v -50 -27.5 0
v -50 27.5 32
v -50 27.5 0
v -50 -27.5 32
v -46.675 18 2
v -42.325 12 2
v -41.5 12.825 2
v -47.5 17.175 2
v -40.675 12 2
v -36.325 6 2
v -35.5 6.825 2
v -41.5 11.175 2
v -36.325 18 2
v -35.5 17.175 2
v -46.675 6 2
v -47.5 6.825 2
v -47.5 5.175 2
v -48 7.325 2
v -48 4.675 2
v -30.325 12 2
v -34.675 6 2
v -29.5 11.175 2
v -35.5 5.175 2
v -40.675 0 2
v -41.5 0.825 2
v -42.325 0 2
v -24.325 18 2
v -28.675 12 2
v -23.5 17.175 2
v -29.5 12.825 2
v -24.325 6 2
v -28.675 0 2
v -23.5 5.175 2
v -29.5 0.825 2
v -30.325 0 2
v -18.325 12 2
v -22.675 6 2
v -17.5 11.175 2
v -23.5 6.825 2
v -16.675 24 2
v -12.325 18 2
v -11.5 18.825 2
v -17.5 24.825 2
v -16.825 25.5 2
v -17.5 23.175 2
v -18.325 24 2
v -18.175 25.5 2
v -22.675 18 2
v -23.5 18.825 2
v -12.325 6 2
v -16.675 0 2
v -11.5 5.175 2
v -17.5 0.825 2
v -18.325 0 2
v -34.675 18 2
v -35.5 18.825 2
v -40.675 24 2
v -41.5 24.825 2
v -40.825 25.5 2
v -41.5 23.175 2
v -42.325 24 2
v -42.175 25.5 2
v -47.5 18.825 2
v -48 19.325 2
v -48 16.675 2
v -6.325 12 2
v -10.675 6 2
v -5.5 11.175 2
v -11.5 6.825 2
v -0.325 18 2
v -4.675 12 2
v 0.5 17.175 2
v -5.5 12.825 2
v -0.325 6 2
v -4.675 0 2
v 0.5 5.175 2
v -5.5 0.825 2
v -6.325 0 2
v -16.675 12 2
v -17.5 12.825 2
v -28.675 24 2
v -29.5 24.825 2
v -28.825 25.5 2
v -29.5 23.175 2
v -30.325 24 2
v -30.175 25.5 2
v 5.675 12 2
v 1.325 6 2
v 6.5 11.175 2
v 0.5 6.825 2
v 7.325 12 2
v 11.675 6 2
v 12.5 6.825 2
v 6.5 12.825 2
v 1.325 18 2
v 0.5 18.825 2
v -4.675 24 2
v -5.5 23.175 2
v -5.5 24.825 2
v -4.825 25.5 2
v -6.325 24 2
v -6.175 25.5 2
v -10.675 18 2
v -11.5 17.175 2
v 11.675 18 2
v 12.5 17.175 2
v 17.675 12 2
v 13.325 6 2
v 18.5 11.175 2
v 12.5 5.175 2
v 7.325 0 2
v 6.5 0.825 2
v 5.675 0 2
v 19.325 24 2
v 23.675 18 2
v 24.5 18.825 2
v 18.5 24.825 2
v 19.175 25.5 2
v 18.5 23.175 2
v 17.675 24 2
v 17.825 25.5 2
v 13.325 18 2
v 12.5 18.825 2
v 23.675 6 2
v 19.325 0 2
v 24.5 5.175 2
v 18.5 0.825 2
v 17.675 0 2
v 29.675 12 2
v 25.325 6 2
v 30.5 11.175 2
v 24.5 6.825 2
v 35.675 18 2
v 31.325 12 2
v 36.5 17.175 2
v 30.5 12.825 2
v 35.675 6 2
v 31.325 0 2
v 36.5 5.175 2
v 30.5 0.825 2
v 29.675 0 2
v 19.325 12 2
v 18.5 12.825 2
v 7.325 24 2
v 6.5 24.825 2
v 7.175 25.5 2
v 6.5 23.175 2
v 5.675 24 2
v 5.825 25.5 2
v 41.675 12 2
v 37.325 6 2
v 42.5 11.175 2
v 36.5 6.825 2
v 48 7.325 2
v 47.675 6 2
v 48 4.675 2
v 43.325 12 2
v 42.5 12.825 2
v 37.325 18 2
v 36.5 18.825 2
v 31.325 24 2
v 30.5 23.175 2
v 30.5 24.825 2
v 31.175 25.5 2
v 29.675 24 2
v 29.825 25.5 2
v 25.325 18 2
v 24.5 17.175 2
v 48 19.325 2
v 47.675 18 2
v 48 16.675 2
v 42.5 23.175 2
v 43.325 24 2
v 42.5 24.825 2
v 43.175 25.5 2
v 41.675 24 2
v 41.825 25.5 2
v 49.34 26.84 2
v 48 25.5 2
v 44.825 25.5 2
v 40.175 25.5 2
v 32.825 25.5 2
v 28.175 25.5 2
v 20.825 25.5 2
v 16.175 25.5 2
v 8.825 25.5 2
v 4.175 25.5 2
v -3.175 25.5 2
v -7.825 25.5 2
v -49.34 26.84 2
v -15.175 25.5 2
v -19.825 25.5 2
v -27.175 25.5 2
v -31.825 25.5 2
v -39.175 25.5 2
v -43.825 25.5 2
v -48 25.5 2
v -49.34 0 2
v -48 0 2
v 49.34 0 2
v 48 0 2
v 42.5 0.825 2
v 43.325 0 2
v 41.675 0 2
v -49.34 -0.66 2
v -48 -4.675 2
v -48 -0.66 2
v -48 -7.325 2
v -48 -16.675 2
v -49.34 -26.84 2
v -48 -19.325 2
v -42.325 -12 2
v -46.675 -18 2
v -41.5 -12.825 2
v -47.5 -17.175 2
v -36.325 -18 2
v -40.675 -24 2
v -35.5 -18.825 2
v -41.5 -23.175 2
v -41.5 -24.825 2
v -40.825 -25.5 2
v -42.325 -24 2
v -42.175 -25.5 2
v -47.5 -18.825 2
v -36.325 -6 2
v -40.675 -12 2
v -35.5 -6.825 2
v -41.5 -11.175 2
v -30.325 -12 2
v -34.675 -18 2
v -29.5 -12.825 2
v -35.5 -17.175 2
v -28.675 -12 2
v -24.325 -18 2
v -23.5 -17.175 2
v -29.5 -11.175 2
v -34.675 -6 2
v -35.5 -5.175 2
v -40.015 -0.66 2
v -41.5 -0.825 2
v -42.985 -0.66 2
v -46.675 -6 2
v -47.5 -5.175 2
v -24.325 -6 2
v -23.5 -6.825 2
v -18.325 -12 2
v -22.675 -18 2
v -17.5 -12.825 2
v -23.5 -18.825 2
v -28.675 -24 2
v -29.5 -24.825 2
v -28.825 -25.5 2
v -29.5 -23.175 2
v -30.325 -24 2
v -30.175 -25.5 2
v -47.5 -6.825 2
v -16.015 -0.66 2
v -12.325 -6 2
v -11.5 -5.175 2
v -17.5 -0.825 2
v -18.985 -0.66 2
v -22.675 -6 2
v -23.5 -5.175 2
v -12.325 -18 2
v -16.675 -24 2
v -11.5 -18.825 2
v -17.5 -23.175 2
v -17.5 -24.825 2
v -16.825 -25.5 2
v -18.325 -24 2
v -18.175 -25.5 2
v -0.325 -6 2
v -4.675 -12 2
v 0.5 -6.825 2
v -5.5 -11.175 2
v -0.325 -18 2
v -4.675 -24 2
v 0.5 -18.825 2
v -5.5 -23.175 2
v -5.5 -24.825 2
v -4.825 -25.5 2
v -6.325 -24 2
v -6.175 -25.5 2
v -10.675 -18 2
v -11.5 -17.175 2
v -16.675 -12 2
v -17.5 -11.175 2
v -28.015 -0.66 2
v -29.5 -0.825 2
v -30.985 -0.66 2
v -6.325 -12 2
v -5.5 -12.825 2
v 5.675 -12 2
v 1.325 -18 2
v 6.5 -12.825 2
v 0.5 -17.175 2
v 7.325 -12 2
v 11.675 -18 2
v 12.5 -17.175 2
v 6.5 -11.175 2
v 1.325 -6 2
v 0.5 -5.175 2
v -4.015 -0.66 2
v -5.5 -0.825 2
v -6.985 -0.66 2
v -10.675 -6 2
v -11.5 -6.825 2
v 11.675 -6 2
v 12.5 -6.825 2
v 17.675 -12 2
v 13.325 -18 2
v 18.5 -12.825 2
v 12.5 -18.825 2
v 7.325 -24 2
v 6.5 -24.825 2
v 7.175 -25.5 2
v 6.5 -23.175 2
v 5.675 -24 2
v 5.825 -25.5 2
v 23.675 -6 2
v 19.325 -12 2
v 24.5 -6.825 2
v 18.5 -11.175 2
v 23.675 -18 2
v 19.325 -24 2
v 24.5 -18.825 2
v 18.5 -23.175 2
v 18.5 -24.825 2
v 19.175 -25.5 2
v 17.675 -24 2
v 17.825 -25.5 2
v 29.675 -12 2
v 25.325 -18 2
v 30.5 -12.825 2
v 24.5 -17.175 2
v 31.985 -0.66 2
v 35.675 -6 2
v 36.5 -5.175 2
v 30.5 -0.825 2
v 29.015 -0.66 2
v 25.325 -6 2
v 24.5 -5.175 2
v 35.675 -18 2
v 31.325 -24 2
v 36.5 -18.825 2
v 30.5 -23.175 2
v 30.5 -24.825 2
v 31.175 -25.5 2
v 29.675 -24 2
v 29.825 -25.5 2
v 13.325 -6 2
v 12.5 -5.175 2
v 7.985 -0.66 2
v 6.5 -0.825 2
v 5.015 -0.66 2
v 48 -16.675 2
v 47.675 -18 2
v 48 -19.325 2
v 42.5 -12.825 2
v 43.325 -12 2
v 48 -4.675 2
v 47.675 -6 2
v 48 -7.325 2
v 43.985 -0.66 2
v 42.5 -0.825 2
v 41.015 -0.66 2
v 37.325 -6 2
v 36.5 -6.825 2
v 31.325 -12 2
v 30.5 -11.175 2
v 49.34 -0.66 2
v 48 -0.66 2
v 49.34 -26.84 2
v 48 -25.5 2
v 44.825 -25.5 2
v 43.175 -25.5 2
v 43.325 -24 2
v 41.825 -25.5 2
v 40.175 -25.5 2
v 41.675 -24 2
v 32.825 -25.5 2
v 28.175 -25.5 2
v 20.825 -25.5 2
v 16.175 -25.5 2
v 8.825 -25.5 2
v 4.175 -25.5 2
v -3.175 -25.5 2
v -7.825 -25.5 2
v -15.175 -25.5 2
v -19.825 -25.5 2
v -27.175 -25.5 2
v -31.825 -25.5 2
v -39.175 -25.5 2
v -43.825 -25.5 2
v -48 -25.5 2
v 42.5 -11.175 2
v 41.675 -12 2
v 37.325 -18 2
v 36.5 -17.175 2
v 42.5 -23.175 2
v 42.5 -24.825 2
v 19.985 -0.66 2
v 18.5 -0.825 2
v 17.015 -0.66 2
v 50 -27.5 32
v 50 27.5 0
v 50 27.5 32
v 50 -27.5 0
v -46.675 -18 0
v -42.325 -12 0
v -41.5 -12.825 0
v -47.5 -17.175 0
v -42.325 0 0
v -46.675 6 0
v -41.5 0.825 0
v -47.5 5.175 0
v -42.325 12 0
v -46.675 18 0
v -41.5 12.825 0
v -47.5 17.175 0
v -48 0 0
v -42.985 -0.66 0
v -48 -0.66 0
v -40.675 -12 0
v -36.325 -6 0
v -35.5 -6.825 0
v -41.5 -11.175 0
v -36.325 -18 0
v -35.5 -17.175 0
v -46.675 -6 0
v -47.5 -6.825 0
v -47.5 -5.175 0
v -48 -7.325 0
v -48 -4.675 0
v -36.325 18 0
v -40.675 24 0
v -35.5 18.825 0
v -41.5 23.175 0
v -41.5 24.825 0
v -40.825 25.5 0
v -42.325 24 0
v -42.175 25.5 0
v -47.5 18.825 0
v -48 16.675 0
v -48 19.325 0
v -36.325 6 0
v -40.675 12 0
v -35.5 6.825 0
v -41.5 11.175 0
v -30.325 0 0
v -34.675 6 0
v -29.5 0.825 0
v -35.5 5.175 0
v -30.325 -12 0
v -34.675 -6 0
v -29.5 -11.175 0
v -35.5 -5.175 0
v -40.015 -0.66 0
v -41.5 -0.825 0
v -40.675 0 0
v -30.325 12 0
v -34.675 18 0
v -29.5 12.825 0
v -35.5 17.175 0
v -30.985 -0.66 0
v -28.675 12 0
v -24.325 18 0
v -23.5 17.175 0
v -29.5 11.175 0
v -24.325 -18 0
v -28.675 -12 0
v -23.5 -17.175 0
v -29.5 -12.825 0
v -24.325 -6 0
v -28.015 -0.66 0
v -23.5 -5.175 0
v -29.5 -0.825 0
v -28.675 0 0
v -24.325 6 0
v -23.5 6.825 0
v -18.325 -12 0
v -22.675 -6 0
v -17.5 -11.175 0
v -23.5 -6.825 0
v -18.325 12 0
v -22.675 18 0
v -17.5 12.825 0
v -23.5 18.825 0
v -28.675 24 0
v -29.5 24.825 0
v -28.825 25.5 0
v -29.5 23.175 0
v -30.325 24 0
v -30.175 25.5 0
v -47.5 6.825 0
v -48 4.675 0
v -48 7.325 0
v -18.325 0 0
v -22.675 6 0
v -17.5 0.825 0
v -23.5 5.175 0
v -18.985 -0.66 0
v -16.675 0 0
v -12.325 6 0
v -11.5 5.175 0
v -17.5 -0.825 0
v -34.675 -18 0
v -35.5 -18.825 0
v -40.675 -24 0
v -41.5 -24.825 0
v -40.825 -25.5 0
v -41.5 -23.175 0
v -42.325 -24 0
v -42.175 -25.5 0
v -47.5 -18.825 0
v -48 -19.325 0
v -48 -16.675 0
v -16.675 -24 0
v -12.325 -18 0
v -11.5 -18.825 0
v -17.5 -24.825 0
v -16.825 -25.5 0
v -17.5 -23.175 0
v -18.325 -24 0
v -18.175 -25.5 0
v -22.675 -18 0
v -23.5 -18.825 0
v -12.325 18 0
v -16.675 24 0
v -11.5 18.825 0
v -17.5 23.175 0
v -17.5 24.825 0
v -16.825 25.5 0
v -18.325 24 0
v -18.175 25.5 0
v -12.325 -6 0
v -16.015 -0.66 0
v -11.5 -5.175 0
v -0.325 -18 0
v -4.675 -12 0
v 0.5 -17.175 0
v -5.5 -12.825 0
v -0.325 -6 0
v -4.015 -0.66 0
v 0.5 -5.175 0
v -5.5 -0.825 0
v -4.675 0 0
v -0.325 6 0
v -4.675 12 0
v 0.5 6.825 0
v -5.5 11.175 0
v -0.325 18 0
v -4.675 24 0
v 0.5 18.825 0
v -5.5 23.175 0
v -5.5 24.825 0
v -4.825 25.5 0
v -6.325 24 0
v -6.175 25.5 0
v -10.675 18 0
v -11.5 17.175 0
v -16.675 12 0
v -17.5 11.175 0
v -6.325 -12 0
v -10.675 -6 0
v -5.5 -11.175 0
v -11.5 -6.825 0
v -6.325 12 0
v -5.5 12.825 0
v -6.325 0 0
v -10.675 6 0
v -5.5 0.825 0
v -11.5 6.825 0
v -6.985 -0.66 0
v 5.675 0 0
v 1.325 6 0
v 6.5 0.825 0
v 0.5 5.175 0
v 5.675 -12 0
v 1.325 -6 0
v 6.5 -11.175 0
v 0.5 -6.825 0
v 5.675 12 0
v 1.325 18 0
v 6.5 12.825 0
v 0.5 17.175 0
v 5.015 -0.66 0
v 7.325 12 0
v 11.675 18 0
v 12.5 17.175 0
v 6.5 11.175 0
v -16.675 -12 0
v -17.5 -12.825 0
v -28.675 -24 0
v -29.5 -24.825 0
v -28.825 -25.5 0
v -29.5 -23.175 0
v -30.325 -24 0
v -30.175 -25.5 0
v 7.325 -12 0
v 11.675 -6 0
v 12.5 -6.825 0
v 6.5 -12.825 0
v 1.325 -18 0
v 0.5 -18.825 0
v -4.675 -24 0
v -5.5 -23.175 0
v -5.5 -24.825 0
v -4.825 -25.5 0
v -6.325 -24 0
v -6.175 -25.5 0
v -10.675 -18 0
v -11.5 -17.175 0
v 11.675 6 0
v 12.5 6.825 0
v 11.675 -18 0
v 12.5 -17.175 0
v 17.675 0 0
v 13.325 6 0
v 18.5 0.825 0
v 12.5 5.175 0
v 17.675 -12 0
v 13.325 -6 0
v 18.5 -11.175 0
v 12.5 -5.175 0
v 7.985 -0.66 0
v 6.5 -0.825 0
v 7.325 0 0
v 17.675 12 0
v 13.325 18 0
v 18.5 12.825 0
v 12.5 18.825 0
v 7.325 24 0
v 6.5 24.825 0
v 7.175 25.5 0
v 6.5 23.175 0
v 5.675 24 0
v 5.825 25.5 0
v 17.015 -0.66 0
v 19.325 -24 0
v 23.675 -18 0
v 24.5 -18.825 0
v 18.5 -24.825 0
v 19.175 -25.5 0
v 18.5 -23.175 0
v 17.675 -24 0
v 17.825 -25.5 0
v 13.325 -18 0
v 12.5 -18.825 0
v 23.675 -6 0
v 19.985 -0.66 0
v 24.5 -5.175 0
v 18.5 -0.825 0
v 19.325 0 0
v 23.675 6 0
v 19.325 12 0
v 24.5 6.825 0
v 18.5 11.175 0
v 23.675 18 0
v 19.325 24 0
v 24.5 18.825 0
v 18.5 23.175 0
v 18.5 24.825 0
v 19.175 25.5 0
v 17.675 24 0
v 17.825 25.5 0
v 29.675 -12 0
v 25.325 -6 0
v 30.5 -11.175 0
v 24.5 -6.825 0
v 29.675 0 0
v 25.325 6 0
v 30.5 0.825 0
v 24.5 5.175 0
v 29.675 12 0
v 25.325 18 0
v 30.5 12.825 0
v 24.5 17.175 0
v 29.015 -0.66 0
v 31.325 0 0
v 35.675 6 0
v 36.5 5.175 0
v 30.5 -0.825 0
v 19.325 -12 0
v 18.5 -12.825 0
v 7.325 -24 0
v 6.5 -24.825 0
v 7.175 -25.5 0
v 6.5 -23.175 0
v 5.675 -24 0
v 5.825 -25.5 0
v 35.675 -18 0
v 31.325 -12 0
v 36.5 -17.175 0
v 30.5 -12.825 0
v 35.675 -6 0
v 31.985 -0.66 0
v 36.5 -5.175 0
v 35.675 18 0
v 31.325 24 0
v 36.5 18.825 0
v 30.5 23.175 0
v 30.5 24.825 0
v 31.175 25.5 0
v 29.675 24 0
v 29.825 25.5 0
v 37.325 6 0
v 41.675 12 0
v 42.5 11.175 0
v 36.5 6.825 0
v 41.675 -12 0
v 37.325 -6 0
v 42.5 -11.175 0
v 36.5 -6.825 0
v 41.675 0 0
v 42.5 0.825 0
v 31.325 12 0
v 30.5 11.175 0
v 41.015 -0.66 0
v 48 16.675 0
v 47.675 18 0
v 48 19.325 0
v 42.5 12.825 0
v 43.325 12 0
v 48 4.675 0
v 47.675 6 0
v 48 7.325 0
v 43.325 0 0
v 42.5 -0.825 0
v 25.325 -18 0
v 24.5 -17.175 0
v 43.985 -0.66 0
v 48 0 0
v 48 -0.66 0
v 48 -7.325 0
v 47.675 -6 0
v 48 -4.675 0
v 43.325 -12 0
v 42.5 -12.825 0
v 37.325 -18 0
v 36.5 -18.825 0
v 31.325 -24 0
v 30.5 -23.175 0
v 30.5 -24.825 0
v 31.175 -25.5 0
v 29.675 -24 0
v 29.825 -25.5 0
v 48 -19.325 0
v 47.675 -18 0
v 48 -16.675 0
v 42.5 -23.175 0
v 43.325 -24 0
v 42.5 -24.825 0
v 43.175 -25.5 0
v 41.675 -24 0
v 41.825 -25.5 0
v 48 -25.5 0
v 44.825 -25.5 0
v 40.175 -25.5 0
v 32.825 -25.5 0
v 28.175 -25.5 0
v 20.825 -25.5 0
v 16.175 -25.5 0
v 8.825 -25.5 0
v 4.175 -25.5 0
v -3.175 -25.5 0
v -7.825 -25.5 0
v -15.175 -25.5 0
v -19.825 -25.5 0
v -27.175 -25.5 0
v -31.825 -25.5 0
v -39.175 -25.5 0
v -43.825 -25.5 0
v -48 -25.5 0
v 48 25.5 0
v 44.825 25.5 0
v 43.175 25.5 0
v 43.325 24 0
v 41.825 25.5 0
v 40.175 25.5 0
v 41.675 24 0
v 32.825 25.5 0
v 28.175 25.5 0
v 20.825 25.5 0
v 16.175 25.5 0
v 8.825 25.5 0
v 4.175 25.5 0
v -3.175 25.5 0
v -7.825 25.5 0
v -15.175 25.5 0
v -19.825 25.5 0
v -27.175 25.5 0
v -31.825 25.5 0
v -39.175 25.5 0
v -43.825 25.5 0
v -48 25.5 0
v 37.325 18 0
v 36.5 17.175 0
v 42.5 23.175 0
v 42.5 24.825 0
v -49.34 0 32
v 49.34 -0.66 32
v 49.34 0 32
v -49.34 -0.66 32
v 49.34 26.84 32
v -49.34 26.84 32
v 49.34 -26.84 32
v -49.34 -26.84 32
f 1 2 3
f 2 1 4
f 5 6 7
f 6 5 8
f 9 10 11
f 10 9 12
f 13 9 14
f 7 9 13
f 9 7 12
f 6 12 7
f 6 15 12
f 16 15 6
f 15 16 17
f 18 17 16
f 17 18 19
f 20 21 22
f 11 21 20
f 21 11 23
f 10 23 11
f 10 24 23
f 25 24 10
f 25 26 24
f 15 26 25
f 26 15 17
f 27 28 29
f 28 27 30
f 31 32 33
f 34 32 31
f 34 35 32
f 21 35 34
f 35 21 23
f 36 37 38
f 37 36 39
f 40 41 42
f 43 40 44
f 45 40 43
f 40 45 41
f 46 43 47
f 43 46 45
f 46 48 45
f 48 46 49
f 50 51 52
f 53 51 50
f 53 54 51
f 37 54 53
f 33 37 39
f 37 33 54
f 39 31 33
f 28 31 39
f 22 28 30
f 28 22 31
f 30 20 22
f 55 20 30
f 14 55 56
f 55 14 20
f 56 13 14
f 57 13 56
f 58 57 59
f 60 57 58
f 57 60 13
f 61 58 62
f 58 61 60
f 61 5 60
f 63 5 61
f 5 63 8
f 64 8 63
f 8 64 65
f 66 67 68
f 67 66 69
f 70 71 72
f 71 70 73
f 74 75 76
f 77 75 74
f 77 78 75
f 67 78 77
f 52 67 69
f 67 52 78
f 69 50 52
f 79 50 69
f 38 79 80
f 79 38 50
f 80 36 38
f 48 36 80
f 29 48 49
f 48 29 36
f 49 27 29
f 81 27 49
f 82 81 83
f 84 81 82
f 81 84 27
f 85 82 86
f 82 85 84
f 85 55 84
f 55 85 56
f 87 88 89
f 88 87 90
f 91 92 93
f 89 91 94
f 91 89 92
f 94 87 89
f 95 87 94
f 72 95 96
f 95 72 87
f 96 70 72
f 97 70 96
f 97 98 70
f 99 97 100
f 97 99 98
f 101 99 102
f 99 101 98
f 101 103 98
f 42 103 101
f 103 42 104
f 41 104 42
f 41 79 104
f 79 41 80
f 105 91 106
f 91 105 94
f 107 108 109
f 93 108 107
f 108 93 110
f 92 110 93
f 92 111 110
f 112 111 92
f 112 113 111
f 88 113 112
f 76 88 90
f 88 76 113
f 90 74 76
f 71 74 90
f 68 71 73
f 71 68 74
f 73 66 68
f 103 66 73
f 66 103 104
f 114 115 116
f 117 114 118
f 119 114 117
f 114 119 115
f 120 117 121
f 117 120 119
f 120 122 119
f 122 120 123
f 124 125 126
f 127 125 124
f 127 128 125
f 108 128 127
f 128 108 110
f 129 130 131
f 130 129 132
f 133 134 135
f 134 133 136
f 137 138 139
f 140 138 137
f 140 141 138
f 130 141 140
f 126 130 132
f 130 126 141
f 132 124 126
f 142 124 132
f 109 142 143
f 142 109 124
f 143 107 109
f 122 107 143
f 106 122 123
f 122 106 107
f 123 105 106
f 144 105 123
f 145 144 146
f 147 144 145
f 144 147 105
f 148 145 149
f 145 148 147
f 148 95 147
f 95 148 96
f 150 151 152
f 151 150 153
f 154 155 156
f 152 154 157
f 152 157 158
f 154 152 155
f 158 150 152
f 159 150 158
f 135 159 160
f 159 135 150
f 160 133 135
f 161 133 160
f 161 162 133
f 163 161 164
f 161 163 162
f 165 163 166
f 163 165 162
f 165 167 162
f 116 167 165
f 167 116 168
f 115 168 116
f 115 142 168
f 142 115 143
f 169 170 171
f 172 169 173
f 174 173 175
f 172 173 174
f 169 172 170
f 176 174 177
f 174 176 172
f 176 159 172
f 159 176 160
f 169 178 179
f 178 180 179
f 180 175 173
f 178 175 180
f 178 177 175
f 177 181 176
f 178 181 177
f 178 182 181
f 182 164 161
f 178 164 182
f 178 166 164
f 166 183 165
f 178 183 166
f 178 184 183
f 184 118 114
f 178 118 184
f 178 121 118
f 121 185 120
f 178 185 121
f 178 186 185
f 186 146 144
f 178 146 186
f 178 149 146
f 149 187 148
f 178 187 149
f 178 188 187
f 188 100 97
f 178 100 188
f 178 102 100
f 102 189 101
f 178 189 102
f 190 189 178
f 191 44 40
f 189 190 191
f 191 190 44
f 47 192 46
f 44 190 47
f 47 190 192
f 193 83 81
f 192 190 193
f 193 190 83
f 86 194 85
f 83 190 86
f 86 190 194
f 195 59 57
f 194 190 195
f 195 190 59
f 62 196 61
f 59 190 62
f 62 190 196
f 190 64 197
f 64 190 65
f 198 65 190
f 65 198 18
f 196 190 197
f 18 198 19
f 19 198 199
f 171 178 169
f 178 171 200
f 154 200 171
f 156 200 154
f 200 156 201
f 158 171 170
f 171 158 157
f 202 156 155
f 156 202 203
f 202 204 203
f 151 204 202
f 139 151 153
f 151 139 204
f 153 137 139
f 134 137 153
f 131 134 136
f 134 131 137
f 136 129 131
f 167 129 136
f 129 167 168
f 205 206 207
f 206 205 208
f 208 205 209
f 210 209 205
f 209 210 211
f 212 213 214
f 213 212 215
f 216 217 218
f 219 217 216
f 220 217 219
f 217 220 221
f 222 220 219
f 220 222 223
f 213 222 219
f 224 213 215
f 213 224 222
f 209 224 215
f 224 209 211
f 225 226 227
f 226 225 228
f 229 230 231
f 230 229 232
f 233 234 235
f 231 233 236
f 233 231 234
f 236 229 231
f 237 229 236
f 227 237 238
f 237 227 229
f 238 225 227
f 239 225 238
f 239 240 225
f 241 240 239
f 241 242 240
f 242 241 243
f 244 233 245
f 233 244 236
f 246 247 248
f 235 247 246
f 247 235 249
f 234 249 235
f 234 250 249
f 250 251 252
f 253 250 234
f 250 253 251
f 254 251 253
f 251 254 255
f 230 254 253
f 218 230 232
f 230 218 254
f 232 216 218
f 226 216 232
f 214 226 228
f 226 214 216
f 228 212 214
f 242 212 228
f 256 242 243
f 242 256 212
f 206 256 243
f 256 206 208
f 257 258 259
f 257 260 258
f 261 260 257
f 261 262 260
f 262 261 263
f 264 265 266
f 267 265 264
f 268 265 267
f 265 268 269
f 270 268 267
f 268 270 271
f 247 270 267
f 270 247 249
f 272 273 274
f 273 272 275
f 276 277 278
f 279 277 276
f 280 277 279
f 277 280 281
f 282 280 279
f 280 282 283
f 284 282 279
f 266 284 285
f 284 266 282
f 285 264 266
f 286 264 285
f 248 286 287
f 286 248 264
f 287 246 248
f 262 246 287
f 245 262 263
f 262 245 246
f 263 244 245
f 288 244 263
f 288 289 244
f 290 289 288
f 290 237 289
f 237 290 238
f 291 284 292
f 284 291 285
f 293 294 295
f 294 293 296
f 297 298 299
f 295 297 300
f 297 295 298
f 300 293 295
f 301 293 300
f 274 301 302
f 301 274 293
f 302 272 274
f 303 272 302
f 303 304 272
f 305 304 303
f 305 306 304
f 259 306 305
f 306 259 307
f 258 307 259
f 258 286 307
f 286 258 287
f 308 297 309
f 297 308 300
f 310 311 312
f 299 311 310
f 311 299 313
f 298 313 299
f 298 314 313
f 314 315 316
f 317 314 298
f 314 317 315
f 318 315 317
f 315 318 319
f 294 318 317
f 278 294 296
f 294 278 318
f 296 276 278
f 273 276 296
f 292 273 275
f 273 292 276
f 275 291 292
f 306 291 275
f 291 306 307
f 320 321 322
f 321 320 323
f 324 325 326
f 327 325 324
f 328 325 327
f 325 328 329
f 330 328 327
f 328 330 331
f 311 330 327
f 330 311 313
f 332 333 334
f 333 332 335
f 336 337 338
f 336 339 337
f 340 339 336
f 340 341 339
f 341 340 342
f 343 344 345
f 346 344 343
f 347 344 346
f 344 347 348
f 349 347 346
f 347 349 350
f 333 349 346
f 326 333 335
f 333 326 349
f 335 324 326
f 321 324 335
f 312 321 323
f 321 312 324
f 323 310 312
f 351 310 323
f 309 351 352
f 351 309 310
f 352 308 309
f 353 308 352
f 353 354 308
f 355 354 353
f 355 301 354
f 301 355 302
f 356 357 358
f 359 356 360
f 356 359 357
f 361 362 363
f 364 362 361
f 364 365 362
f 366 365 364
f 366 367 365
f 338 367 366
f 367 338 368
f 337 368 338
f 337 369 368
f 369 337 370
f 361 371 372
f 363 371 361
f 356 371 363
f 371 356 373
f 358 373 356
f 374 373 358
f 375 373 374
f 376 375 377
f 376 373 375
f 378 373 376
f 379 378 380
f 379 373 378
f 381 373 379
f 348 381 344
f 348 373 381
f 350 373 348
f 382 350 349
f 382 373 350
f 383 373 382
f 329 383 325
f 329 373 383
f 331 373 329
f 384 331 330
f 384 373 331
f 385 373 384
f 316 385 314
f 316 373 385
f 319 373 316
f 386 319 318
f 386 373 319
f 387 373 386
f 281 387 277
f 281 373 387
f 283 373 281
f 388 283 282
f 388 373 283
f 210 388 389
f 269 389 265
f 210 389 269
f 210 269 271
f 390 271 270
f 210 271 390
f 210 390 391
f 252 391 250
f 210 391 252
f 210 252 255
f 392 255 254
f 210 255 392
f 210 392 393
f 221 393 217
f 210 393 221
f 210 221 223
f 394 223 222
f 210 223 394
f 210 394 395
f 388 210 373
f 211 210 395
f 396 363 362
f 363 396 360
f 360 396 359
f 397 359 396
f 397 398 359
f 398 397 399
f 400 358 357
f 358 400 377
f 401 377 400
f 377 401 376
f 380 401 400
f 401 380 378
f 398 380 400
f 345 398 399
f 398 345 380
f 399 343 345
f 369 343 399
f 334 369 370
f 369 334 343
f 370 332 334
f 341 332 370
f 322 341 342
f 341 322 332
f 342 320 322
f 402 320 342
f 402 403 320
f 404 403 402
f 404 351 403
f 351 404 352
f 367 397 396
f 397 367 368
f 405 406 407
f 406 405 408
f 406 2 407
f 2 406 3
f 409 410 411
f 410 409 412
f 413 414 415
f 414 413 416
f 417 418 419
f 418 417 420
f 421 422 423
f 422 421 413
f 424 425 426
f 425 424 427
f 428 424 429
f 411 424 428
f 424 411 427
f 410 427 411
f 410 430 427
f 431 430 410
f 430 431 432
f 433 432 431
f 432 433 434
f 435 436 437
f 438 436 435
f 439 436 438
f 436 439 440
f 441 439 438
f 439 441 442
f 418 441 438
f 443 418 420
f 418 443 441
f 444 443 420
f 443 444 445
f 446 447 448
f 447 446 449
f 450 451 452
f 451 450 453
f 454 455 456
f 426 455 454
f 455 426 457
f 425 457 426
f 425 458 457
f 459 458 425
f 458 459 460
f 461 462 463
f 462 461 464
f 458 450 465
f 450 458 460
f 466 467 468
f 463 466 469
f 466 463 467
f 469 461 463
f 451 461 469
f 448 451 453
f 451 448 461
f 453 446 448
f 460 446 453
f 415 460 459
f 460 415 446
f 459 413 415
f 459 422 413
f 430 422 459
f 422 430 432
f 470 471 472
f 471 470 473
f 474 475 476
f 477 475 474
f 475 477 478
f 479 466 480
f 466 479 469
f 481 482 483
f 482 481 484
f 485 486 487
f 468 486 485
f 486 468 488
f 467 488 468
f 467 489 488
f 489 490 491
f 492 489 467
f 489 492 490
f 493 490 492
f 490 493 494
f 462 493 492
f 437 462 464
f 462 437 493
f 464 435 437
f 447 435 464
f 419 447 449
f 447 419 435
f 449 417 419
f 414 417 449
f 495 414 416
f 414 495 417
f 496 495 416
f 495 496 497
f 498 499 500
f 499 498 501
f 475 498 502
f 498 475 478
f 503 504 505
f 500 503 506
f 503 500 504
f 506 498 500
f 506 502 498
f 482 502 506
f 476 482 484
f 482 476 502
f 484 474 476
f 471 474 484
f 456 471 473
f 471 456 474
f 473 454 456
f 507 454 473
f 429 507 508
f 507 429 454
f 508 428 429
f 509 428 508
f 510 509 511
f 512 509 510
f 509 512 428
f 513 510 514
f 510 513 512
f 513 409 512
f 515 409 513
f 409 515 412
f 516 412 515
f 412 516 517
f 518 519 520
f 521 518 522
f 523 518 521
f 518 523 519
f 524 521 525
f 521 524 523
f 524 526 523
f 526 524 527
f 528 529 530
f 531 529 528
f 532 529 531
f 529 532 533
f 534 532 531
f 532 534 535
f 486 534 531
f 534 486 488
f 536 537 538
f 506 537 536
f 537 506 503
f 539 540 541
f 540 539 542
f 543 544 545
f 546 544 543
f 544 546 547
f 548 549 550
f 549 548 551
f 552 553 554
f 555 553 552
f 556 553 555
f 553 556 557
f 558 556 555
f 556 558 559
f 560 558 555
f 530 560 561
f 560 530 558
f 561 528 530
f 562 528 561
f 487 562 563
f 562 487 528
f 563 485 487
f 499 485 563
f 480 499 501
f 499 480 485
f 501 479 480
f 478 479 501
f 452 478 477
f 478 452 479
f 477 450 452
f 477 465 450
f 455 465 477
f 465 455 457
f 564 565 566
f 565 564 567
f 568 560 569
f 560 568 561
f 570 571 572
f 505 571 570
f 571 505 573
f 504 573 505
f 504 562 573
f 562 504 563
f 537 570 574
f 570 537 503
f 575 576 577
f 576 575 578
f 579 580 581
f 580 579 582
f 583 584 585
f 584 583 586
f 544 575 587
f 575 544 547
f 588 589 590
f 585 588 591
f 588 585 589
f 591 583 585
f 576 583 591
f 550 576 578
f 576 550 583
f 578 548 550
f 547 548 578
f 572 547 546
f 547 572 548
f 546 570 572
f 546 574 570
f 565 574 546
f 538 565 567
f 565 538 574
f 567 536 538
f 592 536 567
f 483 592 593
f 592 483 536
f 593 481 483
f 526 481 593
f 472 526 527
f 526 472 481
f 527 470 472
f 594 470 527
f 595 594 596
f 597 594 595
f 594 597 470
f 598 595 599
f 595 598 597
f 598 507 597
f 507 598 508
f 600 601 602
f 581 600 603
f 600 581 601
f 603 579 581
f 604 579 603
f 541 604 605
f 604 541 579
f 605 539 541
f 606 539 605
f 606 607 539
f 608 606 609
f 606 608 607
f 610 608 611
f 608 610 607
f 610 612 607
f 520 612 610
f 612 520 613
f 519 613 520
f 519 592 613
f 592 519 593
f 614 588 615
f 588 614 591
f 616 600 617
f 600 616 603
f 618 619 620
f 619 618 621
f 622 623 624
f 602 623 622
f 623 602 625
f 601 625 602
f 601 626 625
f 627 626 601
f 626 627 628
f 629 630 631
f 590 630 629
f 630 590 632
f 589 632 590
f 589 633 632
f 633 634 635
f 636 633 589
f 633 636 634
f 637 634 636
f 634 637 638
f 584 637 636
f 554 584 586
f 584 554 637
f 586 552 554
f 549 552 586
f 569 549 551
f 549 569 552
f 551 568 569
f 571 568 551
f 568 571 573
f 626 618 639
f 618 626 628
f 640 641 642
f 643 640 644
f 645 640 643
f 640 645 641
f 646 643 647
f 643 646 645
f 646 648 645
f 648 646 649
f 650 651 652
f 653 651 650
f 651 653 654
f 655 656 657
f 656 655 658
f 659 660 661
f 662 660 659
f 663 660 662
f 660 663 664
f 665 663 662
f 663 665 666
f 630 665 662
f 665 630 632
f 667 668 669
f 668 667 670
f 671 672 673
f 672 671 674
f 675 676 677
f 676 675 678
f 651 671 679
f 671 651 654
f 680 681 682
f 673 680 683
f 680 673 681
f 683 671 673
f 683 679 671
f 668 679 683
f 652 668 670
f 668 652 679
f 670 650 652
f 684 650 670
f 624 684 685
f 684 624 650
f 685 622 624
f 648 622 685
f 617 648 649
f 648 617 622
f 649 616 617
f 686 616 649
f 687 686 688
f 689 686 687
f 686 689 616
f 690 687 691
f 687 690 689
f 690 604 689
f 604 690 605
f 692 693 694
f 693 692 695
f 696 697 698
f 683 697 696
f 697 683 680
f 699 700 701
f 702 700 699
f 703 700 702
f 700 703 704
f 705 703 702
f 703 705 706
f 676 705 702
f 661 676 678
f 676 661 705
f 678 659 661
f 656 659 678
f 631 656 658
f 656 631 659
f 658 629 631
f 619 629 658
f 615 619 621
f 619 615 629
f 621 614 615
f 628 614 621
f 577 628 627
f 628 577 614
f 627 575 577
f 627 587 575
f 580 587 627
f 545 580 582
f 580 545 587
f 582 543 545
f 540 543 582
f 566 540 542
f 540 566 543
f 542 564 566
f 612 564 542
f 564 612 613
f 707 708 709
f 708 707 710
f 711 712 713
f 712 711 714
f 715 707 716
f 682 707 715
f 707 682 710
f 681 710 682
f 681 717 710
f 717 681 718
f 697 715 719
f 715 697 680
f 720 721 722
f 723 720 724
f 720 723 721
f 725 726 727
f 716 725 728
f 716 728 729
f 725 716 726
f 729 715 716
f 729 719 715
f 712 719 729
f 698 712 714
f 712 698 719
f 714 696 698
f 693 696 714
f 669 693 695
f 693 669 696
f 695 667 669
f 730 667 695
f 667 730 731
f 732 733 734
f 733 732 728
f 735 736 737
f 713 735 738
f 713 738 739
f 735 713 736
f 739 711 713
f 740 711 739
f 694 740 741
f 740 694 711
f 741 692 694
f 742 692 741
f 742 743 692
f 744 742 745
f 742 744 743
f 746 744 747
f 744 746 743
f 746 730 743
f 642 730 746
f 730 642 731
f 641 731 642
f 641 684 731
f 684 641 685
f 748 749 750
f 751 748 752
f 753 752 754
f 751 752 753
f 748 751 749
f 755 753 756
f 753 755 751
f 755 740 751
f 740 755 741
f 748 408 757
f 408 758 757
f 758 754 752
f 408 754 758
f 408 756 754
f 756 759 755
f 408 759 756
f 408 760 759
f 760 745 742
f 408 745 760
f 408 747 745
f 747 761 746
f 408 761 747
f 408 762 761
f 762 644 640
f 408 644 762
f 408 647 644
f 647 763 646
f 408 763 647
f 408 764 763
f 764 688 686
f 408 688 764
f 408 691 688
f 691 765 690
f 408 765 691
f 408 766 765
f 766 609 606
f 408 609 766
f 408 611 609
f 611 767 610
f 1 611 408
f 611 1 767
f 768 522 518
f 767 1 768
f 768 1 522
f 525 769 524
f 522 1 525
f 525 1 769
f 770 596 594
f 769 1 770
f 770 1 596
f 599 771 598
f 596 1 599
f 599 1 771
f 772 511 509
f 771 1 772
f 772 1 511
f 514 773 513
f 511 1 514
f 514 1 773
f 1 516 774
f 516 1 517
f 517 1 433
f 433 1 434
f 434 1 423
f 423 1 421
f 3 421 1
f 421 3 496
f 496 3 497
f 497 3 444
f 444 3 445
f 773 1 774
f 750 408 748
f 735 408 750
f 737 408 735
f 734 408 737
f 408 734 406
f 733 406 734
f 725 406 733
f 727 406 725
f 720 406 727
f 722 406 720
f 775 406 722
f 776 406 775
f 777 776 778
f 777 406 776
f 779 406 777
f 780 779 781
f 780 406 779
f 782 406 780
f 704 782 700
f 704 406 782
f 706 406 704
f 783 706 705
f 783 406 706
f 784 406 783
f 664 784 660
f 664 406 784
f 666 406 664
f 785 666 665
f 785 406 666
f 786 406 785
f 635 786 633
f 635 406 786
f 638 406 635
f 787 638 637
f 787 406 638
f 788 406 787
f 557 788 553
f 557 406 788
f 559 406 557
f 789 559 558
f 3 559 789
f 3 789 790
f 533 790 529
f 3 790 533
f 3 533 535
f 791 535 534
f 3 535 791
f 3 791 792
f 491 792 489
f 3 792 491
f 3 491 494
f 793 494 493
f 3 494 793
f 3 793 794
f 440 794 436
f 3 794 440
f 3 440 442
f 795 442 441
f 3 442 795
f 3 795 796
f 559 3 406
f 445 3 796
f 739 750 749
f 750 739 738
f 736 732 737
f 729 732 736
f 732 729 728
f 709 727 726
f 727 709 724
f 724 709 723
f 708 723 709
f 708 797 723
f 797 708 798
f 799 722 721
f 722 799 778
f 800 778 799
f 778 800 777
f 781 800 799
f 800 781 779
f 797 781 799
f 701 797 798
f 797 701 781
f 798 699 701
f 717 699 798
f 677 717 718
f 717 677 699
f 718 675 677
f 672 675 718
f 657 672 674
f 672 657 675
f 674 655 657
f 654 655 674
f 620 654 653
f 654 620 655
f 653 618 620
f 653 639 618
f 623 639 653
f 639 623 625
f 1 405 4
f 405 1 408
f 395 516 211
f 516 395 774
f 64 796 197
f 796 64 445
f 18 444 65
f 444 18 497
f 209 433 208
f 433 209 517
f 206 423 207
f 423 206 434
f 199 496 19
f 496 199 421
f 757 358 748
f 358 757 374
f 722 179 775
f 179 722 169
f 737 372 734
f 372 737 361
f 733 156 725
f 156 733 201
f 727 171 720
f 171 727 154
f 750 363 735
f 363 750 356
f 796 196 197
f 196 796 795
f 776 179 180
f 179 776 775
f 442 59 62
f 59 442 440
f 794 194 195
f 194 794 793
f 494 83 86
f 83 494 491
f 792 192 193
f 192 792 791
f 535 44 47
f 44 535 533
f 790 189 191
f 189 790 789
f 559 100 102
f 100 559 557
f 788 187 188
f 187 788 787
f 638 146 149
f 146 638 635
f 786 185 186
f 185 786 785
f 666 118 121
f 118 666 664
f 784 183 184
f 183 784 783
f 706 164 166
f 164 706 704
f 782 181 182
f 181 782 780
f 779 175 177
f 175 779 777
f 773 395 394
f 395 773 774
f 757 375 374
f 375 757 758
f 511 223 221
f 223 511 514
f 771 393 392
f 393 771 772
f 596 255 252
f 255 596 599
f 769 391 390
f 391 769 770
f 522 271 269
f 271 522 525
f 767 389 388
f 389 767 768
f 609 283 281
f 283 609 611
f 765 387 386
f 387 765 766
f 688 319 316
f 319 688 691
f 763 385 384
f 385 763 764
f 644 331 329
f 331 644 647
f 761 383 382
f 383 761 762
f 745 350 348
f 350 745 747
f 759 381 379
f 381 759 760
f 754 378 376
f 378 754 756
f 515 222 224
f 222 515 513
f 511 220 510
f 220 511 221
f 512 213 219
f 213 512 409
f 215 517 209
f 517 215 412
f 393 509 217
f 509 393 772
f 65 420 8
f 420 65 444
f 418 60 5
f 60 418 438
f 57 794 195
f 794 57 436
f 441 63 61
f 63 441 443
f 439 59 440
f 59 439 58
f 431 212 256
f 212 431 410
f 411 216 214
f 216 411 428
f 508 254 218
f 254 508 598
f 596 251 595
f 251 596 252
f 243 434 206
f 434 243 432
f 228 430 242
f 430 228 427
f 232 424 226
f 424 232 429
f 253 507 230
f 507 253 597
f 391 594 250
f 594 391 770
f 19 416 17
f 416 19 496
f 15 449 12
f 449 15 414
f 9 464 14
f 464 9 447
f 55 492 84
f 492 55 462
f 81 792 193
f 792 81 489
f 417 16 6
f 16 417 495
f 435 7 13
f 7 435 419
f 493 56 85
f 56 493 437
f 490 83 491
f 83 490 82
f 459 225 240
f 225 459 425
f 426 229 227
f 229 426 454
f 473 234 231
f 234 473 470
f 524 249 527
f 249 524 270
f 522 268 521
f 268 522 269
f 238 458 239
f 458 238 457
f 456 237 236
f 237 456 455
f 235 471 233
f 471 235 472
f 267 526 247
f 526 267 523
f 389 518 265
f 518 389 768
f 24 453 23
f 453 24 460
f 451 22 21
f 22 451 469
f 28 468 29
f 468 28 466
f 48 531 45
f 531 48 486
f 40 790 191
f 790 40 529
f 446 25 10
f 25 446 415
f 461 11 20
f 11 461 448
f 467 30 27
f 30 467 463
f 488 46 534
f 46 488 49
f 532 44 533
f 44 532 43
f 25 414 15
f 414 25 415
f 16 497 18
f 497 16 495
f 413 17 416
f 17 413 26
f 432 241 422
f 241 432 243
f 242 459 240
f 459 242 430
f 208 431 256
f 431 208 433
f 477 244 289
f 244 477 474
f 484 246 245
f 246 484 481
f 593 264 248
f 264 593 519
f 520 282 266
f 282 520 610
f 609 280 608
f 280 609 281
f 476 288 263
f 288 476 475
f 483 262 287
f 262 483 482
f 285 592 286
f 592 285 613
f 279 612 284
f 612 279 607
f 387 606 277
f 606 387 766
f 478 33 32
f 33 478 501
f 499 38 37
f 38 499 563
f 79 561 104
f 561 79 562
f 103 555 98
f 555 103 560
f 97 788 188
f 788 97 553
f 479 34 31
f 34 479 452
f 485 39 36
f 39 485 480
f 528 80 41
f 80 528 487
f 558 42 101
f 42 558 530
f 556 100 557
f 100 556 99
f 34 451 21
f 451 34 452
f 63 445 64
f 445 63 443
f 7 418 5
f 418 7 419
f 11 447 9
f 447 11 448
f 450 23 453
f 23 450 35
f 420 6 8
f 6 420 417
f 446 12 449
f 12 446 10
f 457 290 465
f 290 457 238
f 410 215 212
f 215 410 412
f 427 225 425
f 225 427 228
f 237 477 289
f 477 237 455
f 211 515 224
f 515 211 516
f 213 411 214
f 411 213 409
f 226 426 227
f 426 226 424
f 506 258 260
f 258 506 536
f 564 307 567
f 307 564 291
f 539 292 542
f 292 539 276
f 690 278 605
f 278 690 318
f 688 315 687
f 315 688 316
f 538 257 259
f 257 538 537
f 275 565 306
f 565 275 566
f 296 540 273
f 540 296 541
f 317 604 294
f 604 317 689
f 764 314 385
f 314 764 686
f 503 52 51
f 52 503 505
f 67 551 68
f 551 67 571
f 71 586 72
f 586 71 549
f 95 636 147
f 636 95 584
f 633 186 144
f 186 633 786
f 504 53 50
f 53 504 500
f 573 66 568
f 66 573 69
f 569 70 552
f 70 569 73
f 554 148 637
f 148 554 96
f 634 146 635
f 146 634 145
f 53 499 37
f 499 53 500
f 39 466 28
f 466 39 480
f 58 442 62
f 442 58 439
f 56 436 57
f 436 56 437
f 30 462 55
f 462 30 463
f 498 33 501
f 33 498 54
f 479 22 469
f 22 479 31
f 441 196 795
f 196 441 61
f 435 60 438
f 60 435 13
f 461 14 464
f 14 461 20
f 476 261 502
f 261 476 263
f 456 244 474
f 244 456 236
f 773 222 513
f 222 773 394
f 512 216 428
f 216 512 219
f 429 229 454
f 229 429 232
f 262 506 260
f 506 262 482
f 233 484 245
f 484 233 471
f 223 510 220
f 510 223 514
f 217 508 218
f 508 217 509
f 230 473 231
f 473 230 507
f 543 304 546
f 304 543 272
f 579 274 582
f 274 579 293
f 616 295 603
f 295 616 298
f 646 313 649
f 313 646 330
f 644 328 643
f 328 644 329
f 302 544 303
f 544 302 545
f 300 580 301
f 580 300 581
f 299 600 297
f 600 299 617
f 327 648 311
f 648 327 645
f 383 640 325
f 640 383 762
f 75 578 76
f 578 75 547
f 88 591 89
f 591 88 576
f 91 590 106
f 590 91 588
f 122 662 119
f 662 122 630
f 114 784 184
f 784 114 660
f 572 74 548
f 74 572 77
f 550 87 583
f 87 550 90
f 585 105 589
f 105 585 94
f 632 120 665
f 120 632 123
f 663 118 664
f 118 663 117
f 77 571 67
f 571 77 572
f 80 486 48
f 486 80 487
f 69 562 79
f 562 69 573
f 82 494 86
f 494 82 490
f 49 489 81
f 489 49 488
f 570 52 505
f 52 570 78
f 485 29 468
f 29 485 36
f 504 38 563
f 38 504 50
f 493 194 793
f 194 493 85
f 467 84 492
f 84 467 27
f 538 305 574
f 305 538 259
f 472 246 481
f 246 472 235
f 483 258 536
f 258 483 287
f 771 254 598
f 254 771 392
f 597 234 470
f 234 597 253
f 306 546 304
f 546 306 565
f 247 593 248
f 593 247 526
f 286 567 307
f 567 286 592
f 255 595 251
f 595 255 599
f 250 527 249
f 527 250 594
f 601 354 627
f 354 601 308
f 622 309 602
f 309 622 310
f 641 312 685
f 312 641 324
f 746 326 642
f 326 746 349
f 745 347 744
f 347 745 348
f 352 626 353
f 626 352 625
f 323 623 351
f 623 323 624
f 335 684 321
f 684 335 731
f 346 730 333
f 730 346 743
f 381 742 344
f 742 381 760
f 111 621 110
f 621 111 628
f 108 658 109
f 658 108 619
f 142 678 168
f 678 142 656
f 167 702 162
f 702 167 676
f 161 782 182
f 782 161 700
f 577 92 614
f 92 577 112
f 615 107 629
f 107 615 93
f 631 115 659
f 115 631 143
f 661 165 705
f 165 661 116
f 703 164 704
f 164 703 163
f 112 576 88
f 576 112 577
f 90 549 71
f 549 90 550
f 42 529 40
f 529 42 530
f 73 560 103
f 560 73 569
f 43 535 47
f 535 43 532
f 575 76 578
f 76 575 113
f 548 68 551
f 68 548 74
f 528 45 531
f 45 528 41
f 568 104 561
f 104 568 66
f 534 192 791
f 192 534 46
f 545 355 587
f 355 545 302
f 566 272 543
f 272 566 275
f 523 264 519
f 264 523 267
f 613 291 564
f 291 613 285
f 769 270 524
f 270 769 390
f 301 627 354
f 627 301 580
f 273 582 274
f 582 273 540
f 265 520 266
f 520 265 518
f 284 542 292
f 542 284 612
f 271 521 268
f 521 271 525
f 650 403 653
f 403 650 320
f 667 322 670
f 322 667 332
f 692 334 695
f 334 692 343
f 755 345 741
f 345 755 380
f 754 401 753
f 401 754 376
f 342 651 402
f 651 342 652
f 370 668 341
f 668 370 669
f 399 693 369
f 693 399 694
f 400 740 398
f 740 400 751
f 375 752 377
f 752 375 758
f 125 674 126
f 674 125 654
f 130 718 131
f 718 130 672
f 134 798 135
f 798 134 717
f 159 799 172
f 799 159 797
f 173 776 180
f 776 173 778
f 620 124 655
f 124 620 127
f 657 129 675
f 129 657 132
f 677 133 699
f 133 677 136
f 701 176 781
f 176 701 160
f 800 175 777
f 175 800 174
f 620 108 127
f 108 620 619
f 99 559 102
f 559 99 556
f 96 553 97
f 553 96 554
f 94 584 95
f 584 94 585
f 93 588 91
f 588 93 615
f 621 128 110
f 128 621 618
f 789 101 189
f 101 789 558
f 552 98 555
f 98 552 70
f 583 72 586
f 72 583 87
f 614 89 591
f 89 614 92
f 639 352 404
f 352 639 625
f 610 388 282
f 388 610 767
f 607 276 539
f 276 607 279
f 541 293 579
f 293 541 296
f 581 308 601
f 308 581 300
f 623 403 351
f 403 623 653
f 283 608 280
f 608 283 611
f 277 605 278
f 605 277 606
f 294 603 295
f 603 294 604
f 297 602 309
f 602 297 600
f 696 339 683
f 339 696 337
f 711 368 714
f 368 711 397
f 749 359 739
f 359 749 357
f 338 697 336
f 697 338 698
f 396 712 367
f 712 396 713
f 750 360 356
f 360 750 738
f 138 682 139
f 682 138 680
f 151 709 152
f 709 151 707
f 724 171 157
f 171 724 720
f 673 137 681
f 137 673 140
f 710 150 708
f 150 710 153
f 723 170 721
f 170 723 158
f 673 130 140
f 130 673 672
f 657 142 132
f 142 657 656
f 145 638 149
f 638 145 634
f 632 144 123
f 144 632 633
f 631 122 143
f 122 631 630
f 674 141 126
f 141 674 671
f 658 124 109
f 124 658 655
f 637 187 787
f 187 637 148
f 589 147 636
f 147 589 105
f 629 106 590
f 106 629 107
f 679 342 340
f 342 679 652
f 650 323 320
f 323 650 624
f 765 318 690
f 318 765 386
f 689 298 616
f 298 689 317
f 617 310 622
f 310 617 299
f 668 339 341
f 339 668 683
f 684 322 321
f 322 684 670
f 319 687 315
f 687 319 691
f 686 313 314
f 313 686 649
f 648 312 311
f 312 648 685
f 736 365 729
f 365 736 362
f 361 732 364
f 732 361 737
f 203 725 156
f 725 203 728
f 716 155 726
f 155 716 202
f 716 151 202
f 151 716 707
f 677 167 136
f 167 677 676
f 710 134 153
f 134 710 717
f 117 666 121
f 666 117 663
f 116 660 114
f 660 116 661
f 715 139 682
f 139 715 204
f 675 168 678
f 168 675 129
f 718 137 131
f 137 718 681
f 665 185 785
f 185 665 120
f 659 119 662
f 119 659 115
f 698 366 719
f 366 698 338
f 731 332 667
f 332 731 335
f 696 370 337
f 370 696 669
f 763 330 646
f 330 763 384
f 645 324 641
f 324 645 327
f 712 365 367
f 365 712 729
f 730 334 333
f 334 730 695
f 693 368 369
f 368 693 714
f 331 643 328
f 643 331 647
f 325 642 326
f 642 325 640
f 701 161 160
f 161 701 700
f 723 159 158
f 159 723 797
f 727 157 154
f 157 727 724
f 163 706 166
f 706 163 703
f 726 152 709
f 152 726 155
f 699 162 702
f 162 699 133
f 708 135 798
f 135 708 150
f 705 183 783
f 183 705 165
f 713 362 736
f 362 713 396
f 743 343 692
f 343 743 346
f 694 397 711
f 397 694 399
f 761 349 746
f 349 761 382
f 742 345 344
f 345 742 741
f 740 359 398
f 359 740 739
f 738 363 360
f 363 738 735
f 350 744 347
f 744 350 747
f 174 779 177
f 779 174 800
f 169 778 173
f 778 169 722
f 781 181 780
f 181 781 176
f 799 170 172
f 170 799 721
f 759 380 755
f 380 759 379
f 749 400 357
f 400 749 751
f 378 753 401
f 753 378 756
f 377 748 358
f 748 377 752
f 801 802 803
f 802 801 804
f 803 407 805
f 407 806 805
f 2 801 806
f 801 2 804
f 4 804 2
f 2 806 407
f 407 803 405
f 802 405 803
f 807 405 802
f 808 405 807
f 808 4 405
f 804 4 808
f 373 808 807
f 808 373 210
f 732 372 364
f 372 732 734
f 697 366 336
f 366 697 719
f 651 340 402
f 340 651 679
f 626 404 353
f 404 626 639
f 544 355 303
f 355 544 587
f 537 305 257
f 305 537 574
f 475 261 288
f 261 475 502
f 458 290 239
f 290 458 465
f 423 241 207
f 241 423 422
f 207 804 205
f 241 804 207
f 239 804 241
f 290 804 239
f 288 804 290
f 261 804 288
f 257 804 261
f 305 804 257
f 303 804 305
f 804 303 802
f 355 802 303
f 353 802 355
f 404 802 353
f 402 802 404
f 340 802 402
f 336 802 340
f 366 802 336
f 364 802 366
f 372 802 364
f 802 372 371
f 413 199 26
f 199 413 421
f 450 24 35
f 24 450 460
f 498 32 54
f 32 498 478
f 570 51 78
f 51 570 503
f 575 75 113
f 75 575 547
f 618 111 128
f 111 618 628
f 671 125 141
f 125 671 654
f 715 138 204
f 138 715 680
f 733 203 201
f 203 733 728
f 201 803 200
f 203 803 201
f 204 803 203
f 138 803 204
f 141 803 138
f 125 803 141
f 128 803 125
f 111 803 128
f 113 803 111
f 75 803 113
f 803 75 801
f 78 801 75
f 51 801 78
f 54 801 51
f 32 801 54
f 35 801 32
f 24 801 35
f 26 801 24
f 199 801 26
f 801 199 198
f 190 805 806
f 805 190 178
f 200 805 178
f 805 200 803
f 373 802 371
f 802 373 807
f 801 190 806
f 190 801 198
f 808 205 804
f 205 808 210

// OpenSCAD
box_width = 100;
box_depth = 55;
box_height = 32;
middle_offset = 0;

module wall_with_x_pattern(width = 500, height = 250, depth = 2, border_size = undef, x_increment = 12, x_width = 1.65) {
  half_width = width / 2.0;
  half_height = height / 2.0;
  half_depth = depth / 2.0;
  half_x_width = x_width / 2.0;
  border_size = is_undef(border_size) ? depth : border_size;

  union() {
    difference() {
      cube(size=[width, height, depth], center=true);
      cube(size=[width - border_size * 2, height - border_size * 2, depth * 2], center=true);
    }
    for (i = [-height : x_increment : width]) {
      intersection() {
        cube(size=[width, height, depth], center=true);
        linear_extrude(height = depth * 2, center = true) {
          polygon(points=[
            [-half_width - half_x_width + i, -half_height],
            [-half_width - half_x_width + i + height, half_height],
            [-half_width - half_x_width + i + height + x_width, half_height],
            [-half_width - half_x_width + i + x_width, -half_height],
          ]);
          polygon(points=[
            [-half_width - half_x_width + i + height, -half_height],
            [-half_width - half_x_width + i, half_height],
            [-half_width - half_x_width + i + x_width, half_height],
            [-half_width - half_x_width + i + height + x_width, -half_height],
          ]);
        };
      };
    }
  };
}

z_base = 1;
wall_size = 0.66;

half_box_width = box_width / 2.0;
half_box_height = box_height / 2.0;
half_box_depth = box_depth / 2.0;
half_wall_size = wall_size / 2.0;

color(c = [0.6, 0.6, 0.6])
  render()
  union() {
    translate([0, 0, z_base])
      wall_with_x_pattern(width = box_width, height = box_depth);

    translate([0, -half_box_depth + half_wall_size, half_box_height])
      cube([box_width, wall_size, box_height], center=true);

    translate([0, middle_offset - half_wall_size, half_box_height])
      cube([box_width, wall_size, box_height], center=true);

    translate([0, half_box_depth - half_wall_size, half_box_height])
      cube([box_width, wall_size, box_height], center=true);

    translate([half_box_width - half_wall_size, 0, half_box_height])
      cube([wall_size, box_depth, box_height], center=true);

    translate([-half_box_width + half_wall_size, 0, half_box_height])
      cube([wall_size, box_depth, box_height], center=true);
  };
